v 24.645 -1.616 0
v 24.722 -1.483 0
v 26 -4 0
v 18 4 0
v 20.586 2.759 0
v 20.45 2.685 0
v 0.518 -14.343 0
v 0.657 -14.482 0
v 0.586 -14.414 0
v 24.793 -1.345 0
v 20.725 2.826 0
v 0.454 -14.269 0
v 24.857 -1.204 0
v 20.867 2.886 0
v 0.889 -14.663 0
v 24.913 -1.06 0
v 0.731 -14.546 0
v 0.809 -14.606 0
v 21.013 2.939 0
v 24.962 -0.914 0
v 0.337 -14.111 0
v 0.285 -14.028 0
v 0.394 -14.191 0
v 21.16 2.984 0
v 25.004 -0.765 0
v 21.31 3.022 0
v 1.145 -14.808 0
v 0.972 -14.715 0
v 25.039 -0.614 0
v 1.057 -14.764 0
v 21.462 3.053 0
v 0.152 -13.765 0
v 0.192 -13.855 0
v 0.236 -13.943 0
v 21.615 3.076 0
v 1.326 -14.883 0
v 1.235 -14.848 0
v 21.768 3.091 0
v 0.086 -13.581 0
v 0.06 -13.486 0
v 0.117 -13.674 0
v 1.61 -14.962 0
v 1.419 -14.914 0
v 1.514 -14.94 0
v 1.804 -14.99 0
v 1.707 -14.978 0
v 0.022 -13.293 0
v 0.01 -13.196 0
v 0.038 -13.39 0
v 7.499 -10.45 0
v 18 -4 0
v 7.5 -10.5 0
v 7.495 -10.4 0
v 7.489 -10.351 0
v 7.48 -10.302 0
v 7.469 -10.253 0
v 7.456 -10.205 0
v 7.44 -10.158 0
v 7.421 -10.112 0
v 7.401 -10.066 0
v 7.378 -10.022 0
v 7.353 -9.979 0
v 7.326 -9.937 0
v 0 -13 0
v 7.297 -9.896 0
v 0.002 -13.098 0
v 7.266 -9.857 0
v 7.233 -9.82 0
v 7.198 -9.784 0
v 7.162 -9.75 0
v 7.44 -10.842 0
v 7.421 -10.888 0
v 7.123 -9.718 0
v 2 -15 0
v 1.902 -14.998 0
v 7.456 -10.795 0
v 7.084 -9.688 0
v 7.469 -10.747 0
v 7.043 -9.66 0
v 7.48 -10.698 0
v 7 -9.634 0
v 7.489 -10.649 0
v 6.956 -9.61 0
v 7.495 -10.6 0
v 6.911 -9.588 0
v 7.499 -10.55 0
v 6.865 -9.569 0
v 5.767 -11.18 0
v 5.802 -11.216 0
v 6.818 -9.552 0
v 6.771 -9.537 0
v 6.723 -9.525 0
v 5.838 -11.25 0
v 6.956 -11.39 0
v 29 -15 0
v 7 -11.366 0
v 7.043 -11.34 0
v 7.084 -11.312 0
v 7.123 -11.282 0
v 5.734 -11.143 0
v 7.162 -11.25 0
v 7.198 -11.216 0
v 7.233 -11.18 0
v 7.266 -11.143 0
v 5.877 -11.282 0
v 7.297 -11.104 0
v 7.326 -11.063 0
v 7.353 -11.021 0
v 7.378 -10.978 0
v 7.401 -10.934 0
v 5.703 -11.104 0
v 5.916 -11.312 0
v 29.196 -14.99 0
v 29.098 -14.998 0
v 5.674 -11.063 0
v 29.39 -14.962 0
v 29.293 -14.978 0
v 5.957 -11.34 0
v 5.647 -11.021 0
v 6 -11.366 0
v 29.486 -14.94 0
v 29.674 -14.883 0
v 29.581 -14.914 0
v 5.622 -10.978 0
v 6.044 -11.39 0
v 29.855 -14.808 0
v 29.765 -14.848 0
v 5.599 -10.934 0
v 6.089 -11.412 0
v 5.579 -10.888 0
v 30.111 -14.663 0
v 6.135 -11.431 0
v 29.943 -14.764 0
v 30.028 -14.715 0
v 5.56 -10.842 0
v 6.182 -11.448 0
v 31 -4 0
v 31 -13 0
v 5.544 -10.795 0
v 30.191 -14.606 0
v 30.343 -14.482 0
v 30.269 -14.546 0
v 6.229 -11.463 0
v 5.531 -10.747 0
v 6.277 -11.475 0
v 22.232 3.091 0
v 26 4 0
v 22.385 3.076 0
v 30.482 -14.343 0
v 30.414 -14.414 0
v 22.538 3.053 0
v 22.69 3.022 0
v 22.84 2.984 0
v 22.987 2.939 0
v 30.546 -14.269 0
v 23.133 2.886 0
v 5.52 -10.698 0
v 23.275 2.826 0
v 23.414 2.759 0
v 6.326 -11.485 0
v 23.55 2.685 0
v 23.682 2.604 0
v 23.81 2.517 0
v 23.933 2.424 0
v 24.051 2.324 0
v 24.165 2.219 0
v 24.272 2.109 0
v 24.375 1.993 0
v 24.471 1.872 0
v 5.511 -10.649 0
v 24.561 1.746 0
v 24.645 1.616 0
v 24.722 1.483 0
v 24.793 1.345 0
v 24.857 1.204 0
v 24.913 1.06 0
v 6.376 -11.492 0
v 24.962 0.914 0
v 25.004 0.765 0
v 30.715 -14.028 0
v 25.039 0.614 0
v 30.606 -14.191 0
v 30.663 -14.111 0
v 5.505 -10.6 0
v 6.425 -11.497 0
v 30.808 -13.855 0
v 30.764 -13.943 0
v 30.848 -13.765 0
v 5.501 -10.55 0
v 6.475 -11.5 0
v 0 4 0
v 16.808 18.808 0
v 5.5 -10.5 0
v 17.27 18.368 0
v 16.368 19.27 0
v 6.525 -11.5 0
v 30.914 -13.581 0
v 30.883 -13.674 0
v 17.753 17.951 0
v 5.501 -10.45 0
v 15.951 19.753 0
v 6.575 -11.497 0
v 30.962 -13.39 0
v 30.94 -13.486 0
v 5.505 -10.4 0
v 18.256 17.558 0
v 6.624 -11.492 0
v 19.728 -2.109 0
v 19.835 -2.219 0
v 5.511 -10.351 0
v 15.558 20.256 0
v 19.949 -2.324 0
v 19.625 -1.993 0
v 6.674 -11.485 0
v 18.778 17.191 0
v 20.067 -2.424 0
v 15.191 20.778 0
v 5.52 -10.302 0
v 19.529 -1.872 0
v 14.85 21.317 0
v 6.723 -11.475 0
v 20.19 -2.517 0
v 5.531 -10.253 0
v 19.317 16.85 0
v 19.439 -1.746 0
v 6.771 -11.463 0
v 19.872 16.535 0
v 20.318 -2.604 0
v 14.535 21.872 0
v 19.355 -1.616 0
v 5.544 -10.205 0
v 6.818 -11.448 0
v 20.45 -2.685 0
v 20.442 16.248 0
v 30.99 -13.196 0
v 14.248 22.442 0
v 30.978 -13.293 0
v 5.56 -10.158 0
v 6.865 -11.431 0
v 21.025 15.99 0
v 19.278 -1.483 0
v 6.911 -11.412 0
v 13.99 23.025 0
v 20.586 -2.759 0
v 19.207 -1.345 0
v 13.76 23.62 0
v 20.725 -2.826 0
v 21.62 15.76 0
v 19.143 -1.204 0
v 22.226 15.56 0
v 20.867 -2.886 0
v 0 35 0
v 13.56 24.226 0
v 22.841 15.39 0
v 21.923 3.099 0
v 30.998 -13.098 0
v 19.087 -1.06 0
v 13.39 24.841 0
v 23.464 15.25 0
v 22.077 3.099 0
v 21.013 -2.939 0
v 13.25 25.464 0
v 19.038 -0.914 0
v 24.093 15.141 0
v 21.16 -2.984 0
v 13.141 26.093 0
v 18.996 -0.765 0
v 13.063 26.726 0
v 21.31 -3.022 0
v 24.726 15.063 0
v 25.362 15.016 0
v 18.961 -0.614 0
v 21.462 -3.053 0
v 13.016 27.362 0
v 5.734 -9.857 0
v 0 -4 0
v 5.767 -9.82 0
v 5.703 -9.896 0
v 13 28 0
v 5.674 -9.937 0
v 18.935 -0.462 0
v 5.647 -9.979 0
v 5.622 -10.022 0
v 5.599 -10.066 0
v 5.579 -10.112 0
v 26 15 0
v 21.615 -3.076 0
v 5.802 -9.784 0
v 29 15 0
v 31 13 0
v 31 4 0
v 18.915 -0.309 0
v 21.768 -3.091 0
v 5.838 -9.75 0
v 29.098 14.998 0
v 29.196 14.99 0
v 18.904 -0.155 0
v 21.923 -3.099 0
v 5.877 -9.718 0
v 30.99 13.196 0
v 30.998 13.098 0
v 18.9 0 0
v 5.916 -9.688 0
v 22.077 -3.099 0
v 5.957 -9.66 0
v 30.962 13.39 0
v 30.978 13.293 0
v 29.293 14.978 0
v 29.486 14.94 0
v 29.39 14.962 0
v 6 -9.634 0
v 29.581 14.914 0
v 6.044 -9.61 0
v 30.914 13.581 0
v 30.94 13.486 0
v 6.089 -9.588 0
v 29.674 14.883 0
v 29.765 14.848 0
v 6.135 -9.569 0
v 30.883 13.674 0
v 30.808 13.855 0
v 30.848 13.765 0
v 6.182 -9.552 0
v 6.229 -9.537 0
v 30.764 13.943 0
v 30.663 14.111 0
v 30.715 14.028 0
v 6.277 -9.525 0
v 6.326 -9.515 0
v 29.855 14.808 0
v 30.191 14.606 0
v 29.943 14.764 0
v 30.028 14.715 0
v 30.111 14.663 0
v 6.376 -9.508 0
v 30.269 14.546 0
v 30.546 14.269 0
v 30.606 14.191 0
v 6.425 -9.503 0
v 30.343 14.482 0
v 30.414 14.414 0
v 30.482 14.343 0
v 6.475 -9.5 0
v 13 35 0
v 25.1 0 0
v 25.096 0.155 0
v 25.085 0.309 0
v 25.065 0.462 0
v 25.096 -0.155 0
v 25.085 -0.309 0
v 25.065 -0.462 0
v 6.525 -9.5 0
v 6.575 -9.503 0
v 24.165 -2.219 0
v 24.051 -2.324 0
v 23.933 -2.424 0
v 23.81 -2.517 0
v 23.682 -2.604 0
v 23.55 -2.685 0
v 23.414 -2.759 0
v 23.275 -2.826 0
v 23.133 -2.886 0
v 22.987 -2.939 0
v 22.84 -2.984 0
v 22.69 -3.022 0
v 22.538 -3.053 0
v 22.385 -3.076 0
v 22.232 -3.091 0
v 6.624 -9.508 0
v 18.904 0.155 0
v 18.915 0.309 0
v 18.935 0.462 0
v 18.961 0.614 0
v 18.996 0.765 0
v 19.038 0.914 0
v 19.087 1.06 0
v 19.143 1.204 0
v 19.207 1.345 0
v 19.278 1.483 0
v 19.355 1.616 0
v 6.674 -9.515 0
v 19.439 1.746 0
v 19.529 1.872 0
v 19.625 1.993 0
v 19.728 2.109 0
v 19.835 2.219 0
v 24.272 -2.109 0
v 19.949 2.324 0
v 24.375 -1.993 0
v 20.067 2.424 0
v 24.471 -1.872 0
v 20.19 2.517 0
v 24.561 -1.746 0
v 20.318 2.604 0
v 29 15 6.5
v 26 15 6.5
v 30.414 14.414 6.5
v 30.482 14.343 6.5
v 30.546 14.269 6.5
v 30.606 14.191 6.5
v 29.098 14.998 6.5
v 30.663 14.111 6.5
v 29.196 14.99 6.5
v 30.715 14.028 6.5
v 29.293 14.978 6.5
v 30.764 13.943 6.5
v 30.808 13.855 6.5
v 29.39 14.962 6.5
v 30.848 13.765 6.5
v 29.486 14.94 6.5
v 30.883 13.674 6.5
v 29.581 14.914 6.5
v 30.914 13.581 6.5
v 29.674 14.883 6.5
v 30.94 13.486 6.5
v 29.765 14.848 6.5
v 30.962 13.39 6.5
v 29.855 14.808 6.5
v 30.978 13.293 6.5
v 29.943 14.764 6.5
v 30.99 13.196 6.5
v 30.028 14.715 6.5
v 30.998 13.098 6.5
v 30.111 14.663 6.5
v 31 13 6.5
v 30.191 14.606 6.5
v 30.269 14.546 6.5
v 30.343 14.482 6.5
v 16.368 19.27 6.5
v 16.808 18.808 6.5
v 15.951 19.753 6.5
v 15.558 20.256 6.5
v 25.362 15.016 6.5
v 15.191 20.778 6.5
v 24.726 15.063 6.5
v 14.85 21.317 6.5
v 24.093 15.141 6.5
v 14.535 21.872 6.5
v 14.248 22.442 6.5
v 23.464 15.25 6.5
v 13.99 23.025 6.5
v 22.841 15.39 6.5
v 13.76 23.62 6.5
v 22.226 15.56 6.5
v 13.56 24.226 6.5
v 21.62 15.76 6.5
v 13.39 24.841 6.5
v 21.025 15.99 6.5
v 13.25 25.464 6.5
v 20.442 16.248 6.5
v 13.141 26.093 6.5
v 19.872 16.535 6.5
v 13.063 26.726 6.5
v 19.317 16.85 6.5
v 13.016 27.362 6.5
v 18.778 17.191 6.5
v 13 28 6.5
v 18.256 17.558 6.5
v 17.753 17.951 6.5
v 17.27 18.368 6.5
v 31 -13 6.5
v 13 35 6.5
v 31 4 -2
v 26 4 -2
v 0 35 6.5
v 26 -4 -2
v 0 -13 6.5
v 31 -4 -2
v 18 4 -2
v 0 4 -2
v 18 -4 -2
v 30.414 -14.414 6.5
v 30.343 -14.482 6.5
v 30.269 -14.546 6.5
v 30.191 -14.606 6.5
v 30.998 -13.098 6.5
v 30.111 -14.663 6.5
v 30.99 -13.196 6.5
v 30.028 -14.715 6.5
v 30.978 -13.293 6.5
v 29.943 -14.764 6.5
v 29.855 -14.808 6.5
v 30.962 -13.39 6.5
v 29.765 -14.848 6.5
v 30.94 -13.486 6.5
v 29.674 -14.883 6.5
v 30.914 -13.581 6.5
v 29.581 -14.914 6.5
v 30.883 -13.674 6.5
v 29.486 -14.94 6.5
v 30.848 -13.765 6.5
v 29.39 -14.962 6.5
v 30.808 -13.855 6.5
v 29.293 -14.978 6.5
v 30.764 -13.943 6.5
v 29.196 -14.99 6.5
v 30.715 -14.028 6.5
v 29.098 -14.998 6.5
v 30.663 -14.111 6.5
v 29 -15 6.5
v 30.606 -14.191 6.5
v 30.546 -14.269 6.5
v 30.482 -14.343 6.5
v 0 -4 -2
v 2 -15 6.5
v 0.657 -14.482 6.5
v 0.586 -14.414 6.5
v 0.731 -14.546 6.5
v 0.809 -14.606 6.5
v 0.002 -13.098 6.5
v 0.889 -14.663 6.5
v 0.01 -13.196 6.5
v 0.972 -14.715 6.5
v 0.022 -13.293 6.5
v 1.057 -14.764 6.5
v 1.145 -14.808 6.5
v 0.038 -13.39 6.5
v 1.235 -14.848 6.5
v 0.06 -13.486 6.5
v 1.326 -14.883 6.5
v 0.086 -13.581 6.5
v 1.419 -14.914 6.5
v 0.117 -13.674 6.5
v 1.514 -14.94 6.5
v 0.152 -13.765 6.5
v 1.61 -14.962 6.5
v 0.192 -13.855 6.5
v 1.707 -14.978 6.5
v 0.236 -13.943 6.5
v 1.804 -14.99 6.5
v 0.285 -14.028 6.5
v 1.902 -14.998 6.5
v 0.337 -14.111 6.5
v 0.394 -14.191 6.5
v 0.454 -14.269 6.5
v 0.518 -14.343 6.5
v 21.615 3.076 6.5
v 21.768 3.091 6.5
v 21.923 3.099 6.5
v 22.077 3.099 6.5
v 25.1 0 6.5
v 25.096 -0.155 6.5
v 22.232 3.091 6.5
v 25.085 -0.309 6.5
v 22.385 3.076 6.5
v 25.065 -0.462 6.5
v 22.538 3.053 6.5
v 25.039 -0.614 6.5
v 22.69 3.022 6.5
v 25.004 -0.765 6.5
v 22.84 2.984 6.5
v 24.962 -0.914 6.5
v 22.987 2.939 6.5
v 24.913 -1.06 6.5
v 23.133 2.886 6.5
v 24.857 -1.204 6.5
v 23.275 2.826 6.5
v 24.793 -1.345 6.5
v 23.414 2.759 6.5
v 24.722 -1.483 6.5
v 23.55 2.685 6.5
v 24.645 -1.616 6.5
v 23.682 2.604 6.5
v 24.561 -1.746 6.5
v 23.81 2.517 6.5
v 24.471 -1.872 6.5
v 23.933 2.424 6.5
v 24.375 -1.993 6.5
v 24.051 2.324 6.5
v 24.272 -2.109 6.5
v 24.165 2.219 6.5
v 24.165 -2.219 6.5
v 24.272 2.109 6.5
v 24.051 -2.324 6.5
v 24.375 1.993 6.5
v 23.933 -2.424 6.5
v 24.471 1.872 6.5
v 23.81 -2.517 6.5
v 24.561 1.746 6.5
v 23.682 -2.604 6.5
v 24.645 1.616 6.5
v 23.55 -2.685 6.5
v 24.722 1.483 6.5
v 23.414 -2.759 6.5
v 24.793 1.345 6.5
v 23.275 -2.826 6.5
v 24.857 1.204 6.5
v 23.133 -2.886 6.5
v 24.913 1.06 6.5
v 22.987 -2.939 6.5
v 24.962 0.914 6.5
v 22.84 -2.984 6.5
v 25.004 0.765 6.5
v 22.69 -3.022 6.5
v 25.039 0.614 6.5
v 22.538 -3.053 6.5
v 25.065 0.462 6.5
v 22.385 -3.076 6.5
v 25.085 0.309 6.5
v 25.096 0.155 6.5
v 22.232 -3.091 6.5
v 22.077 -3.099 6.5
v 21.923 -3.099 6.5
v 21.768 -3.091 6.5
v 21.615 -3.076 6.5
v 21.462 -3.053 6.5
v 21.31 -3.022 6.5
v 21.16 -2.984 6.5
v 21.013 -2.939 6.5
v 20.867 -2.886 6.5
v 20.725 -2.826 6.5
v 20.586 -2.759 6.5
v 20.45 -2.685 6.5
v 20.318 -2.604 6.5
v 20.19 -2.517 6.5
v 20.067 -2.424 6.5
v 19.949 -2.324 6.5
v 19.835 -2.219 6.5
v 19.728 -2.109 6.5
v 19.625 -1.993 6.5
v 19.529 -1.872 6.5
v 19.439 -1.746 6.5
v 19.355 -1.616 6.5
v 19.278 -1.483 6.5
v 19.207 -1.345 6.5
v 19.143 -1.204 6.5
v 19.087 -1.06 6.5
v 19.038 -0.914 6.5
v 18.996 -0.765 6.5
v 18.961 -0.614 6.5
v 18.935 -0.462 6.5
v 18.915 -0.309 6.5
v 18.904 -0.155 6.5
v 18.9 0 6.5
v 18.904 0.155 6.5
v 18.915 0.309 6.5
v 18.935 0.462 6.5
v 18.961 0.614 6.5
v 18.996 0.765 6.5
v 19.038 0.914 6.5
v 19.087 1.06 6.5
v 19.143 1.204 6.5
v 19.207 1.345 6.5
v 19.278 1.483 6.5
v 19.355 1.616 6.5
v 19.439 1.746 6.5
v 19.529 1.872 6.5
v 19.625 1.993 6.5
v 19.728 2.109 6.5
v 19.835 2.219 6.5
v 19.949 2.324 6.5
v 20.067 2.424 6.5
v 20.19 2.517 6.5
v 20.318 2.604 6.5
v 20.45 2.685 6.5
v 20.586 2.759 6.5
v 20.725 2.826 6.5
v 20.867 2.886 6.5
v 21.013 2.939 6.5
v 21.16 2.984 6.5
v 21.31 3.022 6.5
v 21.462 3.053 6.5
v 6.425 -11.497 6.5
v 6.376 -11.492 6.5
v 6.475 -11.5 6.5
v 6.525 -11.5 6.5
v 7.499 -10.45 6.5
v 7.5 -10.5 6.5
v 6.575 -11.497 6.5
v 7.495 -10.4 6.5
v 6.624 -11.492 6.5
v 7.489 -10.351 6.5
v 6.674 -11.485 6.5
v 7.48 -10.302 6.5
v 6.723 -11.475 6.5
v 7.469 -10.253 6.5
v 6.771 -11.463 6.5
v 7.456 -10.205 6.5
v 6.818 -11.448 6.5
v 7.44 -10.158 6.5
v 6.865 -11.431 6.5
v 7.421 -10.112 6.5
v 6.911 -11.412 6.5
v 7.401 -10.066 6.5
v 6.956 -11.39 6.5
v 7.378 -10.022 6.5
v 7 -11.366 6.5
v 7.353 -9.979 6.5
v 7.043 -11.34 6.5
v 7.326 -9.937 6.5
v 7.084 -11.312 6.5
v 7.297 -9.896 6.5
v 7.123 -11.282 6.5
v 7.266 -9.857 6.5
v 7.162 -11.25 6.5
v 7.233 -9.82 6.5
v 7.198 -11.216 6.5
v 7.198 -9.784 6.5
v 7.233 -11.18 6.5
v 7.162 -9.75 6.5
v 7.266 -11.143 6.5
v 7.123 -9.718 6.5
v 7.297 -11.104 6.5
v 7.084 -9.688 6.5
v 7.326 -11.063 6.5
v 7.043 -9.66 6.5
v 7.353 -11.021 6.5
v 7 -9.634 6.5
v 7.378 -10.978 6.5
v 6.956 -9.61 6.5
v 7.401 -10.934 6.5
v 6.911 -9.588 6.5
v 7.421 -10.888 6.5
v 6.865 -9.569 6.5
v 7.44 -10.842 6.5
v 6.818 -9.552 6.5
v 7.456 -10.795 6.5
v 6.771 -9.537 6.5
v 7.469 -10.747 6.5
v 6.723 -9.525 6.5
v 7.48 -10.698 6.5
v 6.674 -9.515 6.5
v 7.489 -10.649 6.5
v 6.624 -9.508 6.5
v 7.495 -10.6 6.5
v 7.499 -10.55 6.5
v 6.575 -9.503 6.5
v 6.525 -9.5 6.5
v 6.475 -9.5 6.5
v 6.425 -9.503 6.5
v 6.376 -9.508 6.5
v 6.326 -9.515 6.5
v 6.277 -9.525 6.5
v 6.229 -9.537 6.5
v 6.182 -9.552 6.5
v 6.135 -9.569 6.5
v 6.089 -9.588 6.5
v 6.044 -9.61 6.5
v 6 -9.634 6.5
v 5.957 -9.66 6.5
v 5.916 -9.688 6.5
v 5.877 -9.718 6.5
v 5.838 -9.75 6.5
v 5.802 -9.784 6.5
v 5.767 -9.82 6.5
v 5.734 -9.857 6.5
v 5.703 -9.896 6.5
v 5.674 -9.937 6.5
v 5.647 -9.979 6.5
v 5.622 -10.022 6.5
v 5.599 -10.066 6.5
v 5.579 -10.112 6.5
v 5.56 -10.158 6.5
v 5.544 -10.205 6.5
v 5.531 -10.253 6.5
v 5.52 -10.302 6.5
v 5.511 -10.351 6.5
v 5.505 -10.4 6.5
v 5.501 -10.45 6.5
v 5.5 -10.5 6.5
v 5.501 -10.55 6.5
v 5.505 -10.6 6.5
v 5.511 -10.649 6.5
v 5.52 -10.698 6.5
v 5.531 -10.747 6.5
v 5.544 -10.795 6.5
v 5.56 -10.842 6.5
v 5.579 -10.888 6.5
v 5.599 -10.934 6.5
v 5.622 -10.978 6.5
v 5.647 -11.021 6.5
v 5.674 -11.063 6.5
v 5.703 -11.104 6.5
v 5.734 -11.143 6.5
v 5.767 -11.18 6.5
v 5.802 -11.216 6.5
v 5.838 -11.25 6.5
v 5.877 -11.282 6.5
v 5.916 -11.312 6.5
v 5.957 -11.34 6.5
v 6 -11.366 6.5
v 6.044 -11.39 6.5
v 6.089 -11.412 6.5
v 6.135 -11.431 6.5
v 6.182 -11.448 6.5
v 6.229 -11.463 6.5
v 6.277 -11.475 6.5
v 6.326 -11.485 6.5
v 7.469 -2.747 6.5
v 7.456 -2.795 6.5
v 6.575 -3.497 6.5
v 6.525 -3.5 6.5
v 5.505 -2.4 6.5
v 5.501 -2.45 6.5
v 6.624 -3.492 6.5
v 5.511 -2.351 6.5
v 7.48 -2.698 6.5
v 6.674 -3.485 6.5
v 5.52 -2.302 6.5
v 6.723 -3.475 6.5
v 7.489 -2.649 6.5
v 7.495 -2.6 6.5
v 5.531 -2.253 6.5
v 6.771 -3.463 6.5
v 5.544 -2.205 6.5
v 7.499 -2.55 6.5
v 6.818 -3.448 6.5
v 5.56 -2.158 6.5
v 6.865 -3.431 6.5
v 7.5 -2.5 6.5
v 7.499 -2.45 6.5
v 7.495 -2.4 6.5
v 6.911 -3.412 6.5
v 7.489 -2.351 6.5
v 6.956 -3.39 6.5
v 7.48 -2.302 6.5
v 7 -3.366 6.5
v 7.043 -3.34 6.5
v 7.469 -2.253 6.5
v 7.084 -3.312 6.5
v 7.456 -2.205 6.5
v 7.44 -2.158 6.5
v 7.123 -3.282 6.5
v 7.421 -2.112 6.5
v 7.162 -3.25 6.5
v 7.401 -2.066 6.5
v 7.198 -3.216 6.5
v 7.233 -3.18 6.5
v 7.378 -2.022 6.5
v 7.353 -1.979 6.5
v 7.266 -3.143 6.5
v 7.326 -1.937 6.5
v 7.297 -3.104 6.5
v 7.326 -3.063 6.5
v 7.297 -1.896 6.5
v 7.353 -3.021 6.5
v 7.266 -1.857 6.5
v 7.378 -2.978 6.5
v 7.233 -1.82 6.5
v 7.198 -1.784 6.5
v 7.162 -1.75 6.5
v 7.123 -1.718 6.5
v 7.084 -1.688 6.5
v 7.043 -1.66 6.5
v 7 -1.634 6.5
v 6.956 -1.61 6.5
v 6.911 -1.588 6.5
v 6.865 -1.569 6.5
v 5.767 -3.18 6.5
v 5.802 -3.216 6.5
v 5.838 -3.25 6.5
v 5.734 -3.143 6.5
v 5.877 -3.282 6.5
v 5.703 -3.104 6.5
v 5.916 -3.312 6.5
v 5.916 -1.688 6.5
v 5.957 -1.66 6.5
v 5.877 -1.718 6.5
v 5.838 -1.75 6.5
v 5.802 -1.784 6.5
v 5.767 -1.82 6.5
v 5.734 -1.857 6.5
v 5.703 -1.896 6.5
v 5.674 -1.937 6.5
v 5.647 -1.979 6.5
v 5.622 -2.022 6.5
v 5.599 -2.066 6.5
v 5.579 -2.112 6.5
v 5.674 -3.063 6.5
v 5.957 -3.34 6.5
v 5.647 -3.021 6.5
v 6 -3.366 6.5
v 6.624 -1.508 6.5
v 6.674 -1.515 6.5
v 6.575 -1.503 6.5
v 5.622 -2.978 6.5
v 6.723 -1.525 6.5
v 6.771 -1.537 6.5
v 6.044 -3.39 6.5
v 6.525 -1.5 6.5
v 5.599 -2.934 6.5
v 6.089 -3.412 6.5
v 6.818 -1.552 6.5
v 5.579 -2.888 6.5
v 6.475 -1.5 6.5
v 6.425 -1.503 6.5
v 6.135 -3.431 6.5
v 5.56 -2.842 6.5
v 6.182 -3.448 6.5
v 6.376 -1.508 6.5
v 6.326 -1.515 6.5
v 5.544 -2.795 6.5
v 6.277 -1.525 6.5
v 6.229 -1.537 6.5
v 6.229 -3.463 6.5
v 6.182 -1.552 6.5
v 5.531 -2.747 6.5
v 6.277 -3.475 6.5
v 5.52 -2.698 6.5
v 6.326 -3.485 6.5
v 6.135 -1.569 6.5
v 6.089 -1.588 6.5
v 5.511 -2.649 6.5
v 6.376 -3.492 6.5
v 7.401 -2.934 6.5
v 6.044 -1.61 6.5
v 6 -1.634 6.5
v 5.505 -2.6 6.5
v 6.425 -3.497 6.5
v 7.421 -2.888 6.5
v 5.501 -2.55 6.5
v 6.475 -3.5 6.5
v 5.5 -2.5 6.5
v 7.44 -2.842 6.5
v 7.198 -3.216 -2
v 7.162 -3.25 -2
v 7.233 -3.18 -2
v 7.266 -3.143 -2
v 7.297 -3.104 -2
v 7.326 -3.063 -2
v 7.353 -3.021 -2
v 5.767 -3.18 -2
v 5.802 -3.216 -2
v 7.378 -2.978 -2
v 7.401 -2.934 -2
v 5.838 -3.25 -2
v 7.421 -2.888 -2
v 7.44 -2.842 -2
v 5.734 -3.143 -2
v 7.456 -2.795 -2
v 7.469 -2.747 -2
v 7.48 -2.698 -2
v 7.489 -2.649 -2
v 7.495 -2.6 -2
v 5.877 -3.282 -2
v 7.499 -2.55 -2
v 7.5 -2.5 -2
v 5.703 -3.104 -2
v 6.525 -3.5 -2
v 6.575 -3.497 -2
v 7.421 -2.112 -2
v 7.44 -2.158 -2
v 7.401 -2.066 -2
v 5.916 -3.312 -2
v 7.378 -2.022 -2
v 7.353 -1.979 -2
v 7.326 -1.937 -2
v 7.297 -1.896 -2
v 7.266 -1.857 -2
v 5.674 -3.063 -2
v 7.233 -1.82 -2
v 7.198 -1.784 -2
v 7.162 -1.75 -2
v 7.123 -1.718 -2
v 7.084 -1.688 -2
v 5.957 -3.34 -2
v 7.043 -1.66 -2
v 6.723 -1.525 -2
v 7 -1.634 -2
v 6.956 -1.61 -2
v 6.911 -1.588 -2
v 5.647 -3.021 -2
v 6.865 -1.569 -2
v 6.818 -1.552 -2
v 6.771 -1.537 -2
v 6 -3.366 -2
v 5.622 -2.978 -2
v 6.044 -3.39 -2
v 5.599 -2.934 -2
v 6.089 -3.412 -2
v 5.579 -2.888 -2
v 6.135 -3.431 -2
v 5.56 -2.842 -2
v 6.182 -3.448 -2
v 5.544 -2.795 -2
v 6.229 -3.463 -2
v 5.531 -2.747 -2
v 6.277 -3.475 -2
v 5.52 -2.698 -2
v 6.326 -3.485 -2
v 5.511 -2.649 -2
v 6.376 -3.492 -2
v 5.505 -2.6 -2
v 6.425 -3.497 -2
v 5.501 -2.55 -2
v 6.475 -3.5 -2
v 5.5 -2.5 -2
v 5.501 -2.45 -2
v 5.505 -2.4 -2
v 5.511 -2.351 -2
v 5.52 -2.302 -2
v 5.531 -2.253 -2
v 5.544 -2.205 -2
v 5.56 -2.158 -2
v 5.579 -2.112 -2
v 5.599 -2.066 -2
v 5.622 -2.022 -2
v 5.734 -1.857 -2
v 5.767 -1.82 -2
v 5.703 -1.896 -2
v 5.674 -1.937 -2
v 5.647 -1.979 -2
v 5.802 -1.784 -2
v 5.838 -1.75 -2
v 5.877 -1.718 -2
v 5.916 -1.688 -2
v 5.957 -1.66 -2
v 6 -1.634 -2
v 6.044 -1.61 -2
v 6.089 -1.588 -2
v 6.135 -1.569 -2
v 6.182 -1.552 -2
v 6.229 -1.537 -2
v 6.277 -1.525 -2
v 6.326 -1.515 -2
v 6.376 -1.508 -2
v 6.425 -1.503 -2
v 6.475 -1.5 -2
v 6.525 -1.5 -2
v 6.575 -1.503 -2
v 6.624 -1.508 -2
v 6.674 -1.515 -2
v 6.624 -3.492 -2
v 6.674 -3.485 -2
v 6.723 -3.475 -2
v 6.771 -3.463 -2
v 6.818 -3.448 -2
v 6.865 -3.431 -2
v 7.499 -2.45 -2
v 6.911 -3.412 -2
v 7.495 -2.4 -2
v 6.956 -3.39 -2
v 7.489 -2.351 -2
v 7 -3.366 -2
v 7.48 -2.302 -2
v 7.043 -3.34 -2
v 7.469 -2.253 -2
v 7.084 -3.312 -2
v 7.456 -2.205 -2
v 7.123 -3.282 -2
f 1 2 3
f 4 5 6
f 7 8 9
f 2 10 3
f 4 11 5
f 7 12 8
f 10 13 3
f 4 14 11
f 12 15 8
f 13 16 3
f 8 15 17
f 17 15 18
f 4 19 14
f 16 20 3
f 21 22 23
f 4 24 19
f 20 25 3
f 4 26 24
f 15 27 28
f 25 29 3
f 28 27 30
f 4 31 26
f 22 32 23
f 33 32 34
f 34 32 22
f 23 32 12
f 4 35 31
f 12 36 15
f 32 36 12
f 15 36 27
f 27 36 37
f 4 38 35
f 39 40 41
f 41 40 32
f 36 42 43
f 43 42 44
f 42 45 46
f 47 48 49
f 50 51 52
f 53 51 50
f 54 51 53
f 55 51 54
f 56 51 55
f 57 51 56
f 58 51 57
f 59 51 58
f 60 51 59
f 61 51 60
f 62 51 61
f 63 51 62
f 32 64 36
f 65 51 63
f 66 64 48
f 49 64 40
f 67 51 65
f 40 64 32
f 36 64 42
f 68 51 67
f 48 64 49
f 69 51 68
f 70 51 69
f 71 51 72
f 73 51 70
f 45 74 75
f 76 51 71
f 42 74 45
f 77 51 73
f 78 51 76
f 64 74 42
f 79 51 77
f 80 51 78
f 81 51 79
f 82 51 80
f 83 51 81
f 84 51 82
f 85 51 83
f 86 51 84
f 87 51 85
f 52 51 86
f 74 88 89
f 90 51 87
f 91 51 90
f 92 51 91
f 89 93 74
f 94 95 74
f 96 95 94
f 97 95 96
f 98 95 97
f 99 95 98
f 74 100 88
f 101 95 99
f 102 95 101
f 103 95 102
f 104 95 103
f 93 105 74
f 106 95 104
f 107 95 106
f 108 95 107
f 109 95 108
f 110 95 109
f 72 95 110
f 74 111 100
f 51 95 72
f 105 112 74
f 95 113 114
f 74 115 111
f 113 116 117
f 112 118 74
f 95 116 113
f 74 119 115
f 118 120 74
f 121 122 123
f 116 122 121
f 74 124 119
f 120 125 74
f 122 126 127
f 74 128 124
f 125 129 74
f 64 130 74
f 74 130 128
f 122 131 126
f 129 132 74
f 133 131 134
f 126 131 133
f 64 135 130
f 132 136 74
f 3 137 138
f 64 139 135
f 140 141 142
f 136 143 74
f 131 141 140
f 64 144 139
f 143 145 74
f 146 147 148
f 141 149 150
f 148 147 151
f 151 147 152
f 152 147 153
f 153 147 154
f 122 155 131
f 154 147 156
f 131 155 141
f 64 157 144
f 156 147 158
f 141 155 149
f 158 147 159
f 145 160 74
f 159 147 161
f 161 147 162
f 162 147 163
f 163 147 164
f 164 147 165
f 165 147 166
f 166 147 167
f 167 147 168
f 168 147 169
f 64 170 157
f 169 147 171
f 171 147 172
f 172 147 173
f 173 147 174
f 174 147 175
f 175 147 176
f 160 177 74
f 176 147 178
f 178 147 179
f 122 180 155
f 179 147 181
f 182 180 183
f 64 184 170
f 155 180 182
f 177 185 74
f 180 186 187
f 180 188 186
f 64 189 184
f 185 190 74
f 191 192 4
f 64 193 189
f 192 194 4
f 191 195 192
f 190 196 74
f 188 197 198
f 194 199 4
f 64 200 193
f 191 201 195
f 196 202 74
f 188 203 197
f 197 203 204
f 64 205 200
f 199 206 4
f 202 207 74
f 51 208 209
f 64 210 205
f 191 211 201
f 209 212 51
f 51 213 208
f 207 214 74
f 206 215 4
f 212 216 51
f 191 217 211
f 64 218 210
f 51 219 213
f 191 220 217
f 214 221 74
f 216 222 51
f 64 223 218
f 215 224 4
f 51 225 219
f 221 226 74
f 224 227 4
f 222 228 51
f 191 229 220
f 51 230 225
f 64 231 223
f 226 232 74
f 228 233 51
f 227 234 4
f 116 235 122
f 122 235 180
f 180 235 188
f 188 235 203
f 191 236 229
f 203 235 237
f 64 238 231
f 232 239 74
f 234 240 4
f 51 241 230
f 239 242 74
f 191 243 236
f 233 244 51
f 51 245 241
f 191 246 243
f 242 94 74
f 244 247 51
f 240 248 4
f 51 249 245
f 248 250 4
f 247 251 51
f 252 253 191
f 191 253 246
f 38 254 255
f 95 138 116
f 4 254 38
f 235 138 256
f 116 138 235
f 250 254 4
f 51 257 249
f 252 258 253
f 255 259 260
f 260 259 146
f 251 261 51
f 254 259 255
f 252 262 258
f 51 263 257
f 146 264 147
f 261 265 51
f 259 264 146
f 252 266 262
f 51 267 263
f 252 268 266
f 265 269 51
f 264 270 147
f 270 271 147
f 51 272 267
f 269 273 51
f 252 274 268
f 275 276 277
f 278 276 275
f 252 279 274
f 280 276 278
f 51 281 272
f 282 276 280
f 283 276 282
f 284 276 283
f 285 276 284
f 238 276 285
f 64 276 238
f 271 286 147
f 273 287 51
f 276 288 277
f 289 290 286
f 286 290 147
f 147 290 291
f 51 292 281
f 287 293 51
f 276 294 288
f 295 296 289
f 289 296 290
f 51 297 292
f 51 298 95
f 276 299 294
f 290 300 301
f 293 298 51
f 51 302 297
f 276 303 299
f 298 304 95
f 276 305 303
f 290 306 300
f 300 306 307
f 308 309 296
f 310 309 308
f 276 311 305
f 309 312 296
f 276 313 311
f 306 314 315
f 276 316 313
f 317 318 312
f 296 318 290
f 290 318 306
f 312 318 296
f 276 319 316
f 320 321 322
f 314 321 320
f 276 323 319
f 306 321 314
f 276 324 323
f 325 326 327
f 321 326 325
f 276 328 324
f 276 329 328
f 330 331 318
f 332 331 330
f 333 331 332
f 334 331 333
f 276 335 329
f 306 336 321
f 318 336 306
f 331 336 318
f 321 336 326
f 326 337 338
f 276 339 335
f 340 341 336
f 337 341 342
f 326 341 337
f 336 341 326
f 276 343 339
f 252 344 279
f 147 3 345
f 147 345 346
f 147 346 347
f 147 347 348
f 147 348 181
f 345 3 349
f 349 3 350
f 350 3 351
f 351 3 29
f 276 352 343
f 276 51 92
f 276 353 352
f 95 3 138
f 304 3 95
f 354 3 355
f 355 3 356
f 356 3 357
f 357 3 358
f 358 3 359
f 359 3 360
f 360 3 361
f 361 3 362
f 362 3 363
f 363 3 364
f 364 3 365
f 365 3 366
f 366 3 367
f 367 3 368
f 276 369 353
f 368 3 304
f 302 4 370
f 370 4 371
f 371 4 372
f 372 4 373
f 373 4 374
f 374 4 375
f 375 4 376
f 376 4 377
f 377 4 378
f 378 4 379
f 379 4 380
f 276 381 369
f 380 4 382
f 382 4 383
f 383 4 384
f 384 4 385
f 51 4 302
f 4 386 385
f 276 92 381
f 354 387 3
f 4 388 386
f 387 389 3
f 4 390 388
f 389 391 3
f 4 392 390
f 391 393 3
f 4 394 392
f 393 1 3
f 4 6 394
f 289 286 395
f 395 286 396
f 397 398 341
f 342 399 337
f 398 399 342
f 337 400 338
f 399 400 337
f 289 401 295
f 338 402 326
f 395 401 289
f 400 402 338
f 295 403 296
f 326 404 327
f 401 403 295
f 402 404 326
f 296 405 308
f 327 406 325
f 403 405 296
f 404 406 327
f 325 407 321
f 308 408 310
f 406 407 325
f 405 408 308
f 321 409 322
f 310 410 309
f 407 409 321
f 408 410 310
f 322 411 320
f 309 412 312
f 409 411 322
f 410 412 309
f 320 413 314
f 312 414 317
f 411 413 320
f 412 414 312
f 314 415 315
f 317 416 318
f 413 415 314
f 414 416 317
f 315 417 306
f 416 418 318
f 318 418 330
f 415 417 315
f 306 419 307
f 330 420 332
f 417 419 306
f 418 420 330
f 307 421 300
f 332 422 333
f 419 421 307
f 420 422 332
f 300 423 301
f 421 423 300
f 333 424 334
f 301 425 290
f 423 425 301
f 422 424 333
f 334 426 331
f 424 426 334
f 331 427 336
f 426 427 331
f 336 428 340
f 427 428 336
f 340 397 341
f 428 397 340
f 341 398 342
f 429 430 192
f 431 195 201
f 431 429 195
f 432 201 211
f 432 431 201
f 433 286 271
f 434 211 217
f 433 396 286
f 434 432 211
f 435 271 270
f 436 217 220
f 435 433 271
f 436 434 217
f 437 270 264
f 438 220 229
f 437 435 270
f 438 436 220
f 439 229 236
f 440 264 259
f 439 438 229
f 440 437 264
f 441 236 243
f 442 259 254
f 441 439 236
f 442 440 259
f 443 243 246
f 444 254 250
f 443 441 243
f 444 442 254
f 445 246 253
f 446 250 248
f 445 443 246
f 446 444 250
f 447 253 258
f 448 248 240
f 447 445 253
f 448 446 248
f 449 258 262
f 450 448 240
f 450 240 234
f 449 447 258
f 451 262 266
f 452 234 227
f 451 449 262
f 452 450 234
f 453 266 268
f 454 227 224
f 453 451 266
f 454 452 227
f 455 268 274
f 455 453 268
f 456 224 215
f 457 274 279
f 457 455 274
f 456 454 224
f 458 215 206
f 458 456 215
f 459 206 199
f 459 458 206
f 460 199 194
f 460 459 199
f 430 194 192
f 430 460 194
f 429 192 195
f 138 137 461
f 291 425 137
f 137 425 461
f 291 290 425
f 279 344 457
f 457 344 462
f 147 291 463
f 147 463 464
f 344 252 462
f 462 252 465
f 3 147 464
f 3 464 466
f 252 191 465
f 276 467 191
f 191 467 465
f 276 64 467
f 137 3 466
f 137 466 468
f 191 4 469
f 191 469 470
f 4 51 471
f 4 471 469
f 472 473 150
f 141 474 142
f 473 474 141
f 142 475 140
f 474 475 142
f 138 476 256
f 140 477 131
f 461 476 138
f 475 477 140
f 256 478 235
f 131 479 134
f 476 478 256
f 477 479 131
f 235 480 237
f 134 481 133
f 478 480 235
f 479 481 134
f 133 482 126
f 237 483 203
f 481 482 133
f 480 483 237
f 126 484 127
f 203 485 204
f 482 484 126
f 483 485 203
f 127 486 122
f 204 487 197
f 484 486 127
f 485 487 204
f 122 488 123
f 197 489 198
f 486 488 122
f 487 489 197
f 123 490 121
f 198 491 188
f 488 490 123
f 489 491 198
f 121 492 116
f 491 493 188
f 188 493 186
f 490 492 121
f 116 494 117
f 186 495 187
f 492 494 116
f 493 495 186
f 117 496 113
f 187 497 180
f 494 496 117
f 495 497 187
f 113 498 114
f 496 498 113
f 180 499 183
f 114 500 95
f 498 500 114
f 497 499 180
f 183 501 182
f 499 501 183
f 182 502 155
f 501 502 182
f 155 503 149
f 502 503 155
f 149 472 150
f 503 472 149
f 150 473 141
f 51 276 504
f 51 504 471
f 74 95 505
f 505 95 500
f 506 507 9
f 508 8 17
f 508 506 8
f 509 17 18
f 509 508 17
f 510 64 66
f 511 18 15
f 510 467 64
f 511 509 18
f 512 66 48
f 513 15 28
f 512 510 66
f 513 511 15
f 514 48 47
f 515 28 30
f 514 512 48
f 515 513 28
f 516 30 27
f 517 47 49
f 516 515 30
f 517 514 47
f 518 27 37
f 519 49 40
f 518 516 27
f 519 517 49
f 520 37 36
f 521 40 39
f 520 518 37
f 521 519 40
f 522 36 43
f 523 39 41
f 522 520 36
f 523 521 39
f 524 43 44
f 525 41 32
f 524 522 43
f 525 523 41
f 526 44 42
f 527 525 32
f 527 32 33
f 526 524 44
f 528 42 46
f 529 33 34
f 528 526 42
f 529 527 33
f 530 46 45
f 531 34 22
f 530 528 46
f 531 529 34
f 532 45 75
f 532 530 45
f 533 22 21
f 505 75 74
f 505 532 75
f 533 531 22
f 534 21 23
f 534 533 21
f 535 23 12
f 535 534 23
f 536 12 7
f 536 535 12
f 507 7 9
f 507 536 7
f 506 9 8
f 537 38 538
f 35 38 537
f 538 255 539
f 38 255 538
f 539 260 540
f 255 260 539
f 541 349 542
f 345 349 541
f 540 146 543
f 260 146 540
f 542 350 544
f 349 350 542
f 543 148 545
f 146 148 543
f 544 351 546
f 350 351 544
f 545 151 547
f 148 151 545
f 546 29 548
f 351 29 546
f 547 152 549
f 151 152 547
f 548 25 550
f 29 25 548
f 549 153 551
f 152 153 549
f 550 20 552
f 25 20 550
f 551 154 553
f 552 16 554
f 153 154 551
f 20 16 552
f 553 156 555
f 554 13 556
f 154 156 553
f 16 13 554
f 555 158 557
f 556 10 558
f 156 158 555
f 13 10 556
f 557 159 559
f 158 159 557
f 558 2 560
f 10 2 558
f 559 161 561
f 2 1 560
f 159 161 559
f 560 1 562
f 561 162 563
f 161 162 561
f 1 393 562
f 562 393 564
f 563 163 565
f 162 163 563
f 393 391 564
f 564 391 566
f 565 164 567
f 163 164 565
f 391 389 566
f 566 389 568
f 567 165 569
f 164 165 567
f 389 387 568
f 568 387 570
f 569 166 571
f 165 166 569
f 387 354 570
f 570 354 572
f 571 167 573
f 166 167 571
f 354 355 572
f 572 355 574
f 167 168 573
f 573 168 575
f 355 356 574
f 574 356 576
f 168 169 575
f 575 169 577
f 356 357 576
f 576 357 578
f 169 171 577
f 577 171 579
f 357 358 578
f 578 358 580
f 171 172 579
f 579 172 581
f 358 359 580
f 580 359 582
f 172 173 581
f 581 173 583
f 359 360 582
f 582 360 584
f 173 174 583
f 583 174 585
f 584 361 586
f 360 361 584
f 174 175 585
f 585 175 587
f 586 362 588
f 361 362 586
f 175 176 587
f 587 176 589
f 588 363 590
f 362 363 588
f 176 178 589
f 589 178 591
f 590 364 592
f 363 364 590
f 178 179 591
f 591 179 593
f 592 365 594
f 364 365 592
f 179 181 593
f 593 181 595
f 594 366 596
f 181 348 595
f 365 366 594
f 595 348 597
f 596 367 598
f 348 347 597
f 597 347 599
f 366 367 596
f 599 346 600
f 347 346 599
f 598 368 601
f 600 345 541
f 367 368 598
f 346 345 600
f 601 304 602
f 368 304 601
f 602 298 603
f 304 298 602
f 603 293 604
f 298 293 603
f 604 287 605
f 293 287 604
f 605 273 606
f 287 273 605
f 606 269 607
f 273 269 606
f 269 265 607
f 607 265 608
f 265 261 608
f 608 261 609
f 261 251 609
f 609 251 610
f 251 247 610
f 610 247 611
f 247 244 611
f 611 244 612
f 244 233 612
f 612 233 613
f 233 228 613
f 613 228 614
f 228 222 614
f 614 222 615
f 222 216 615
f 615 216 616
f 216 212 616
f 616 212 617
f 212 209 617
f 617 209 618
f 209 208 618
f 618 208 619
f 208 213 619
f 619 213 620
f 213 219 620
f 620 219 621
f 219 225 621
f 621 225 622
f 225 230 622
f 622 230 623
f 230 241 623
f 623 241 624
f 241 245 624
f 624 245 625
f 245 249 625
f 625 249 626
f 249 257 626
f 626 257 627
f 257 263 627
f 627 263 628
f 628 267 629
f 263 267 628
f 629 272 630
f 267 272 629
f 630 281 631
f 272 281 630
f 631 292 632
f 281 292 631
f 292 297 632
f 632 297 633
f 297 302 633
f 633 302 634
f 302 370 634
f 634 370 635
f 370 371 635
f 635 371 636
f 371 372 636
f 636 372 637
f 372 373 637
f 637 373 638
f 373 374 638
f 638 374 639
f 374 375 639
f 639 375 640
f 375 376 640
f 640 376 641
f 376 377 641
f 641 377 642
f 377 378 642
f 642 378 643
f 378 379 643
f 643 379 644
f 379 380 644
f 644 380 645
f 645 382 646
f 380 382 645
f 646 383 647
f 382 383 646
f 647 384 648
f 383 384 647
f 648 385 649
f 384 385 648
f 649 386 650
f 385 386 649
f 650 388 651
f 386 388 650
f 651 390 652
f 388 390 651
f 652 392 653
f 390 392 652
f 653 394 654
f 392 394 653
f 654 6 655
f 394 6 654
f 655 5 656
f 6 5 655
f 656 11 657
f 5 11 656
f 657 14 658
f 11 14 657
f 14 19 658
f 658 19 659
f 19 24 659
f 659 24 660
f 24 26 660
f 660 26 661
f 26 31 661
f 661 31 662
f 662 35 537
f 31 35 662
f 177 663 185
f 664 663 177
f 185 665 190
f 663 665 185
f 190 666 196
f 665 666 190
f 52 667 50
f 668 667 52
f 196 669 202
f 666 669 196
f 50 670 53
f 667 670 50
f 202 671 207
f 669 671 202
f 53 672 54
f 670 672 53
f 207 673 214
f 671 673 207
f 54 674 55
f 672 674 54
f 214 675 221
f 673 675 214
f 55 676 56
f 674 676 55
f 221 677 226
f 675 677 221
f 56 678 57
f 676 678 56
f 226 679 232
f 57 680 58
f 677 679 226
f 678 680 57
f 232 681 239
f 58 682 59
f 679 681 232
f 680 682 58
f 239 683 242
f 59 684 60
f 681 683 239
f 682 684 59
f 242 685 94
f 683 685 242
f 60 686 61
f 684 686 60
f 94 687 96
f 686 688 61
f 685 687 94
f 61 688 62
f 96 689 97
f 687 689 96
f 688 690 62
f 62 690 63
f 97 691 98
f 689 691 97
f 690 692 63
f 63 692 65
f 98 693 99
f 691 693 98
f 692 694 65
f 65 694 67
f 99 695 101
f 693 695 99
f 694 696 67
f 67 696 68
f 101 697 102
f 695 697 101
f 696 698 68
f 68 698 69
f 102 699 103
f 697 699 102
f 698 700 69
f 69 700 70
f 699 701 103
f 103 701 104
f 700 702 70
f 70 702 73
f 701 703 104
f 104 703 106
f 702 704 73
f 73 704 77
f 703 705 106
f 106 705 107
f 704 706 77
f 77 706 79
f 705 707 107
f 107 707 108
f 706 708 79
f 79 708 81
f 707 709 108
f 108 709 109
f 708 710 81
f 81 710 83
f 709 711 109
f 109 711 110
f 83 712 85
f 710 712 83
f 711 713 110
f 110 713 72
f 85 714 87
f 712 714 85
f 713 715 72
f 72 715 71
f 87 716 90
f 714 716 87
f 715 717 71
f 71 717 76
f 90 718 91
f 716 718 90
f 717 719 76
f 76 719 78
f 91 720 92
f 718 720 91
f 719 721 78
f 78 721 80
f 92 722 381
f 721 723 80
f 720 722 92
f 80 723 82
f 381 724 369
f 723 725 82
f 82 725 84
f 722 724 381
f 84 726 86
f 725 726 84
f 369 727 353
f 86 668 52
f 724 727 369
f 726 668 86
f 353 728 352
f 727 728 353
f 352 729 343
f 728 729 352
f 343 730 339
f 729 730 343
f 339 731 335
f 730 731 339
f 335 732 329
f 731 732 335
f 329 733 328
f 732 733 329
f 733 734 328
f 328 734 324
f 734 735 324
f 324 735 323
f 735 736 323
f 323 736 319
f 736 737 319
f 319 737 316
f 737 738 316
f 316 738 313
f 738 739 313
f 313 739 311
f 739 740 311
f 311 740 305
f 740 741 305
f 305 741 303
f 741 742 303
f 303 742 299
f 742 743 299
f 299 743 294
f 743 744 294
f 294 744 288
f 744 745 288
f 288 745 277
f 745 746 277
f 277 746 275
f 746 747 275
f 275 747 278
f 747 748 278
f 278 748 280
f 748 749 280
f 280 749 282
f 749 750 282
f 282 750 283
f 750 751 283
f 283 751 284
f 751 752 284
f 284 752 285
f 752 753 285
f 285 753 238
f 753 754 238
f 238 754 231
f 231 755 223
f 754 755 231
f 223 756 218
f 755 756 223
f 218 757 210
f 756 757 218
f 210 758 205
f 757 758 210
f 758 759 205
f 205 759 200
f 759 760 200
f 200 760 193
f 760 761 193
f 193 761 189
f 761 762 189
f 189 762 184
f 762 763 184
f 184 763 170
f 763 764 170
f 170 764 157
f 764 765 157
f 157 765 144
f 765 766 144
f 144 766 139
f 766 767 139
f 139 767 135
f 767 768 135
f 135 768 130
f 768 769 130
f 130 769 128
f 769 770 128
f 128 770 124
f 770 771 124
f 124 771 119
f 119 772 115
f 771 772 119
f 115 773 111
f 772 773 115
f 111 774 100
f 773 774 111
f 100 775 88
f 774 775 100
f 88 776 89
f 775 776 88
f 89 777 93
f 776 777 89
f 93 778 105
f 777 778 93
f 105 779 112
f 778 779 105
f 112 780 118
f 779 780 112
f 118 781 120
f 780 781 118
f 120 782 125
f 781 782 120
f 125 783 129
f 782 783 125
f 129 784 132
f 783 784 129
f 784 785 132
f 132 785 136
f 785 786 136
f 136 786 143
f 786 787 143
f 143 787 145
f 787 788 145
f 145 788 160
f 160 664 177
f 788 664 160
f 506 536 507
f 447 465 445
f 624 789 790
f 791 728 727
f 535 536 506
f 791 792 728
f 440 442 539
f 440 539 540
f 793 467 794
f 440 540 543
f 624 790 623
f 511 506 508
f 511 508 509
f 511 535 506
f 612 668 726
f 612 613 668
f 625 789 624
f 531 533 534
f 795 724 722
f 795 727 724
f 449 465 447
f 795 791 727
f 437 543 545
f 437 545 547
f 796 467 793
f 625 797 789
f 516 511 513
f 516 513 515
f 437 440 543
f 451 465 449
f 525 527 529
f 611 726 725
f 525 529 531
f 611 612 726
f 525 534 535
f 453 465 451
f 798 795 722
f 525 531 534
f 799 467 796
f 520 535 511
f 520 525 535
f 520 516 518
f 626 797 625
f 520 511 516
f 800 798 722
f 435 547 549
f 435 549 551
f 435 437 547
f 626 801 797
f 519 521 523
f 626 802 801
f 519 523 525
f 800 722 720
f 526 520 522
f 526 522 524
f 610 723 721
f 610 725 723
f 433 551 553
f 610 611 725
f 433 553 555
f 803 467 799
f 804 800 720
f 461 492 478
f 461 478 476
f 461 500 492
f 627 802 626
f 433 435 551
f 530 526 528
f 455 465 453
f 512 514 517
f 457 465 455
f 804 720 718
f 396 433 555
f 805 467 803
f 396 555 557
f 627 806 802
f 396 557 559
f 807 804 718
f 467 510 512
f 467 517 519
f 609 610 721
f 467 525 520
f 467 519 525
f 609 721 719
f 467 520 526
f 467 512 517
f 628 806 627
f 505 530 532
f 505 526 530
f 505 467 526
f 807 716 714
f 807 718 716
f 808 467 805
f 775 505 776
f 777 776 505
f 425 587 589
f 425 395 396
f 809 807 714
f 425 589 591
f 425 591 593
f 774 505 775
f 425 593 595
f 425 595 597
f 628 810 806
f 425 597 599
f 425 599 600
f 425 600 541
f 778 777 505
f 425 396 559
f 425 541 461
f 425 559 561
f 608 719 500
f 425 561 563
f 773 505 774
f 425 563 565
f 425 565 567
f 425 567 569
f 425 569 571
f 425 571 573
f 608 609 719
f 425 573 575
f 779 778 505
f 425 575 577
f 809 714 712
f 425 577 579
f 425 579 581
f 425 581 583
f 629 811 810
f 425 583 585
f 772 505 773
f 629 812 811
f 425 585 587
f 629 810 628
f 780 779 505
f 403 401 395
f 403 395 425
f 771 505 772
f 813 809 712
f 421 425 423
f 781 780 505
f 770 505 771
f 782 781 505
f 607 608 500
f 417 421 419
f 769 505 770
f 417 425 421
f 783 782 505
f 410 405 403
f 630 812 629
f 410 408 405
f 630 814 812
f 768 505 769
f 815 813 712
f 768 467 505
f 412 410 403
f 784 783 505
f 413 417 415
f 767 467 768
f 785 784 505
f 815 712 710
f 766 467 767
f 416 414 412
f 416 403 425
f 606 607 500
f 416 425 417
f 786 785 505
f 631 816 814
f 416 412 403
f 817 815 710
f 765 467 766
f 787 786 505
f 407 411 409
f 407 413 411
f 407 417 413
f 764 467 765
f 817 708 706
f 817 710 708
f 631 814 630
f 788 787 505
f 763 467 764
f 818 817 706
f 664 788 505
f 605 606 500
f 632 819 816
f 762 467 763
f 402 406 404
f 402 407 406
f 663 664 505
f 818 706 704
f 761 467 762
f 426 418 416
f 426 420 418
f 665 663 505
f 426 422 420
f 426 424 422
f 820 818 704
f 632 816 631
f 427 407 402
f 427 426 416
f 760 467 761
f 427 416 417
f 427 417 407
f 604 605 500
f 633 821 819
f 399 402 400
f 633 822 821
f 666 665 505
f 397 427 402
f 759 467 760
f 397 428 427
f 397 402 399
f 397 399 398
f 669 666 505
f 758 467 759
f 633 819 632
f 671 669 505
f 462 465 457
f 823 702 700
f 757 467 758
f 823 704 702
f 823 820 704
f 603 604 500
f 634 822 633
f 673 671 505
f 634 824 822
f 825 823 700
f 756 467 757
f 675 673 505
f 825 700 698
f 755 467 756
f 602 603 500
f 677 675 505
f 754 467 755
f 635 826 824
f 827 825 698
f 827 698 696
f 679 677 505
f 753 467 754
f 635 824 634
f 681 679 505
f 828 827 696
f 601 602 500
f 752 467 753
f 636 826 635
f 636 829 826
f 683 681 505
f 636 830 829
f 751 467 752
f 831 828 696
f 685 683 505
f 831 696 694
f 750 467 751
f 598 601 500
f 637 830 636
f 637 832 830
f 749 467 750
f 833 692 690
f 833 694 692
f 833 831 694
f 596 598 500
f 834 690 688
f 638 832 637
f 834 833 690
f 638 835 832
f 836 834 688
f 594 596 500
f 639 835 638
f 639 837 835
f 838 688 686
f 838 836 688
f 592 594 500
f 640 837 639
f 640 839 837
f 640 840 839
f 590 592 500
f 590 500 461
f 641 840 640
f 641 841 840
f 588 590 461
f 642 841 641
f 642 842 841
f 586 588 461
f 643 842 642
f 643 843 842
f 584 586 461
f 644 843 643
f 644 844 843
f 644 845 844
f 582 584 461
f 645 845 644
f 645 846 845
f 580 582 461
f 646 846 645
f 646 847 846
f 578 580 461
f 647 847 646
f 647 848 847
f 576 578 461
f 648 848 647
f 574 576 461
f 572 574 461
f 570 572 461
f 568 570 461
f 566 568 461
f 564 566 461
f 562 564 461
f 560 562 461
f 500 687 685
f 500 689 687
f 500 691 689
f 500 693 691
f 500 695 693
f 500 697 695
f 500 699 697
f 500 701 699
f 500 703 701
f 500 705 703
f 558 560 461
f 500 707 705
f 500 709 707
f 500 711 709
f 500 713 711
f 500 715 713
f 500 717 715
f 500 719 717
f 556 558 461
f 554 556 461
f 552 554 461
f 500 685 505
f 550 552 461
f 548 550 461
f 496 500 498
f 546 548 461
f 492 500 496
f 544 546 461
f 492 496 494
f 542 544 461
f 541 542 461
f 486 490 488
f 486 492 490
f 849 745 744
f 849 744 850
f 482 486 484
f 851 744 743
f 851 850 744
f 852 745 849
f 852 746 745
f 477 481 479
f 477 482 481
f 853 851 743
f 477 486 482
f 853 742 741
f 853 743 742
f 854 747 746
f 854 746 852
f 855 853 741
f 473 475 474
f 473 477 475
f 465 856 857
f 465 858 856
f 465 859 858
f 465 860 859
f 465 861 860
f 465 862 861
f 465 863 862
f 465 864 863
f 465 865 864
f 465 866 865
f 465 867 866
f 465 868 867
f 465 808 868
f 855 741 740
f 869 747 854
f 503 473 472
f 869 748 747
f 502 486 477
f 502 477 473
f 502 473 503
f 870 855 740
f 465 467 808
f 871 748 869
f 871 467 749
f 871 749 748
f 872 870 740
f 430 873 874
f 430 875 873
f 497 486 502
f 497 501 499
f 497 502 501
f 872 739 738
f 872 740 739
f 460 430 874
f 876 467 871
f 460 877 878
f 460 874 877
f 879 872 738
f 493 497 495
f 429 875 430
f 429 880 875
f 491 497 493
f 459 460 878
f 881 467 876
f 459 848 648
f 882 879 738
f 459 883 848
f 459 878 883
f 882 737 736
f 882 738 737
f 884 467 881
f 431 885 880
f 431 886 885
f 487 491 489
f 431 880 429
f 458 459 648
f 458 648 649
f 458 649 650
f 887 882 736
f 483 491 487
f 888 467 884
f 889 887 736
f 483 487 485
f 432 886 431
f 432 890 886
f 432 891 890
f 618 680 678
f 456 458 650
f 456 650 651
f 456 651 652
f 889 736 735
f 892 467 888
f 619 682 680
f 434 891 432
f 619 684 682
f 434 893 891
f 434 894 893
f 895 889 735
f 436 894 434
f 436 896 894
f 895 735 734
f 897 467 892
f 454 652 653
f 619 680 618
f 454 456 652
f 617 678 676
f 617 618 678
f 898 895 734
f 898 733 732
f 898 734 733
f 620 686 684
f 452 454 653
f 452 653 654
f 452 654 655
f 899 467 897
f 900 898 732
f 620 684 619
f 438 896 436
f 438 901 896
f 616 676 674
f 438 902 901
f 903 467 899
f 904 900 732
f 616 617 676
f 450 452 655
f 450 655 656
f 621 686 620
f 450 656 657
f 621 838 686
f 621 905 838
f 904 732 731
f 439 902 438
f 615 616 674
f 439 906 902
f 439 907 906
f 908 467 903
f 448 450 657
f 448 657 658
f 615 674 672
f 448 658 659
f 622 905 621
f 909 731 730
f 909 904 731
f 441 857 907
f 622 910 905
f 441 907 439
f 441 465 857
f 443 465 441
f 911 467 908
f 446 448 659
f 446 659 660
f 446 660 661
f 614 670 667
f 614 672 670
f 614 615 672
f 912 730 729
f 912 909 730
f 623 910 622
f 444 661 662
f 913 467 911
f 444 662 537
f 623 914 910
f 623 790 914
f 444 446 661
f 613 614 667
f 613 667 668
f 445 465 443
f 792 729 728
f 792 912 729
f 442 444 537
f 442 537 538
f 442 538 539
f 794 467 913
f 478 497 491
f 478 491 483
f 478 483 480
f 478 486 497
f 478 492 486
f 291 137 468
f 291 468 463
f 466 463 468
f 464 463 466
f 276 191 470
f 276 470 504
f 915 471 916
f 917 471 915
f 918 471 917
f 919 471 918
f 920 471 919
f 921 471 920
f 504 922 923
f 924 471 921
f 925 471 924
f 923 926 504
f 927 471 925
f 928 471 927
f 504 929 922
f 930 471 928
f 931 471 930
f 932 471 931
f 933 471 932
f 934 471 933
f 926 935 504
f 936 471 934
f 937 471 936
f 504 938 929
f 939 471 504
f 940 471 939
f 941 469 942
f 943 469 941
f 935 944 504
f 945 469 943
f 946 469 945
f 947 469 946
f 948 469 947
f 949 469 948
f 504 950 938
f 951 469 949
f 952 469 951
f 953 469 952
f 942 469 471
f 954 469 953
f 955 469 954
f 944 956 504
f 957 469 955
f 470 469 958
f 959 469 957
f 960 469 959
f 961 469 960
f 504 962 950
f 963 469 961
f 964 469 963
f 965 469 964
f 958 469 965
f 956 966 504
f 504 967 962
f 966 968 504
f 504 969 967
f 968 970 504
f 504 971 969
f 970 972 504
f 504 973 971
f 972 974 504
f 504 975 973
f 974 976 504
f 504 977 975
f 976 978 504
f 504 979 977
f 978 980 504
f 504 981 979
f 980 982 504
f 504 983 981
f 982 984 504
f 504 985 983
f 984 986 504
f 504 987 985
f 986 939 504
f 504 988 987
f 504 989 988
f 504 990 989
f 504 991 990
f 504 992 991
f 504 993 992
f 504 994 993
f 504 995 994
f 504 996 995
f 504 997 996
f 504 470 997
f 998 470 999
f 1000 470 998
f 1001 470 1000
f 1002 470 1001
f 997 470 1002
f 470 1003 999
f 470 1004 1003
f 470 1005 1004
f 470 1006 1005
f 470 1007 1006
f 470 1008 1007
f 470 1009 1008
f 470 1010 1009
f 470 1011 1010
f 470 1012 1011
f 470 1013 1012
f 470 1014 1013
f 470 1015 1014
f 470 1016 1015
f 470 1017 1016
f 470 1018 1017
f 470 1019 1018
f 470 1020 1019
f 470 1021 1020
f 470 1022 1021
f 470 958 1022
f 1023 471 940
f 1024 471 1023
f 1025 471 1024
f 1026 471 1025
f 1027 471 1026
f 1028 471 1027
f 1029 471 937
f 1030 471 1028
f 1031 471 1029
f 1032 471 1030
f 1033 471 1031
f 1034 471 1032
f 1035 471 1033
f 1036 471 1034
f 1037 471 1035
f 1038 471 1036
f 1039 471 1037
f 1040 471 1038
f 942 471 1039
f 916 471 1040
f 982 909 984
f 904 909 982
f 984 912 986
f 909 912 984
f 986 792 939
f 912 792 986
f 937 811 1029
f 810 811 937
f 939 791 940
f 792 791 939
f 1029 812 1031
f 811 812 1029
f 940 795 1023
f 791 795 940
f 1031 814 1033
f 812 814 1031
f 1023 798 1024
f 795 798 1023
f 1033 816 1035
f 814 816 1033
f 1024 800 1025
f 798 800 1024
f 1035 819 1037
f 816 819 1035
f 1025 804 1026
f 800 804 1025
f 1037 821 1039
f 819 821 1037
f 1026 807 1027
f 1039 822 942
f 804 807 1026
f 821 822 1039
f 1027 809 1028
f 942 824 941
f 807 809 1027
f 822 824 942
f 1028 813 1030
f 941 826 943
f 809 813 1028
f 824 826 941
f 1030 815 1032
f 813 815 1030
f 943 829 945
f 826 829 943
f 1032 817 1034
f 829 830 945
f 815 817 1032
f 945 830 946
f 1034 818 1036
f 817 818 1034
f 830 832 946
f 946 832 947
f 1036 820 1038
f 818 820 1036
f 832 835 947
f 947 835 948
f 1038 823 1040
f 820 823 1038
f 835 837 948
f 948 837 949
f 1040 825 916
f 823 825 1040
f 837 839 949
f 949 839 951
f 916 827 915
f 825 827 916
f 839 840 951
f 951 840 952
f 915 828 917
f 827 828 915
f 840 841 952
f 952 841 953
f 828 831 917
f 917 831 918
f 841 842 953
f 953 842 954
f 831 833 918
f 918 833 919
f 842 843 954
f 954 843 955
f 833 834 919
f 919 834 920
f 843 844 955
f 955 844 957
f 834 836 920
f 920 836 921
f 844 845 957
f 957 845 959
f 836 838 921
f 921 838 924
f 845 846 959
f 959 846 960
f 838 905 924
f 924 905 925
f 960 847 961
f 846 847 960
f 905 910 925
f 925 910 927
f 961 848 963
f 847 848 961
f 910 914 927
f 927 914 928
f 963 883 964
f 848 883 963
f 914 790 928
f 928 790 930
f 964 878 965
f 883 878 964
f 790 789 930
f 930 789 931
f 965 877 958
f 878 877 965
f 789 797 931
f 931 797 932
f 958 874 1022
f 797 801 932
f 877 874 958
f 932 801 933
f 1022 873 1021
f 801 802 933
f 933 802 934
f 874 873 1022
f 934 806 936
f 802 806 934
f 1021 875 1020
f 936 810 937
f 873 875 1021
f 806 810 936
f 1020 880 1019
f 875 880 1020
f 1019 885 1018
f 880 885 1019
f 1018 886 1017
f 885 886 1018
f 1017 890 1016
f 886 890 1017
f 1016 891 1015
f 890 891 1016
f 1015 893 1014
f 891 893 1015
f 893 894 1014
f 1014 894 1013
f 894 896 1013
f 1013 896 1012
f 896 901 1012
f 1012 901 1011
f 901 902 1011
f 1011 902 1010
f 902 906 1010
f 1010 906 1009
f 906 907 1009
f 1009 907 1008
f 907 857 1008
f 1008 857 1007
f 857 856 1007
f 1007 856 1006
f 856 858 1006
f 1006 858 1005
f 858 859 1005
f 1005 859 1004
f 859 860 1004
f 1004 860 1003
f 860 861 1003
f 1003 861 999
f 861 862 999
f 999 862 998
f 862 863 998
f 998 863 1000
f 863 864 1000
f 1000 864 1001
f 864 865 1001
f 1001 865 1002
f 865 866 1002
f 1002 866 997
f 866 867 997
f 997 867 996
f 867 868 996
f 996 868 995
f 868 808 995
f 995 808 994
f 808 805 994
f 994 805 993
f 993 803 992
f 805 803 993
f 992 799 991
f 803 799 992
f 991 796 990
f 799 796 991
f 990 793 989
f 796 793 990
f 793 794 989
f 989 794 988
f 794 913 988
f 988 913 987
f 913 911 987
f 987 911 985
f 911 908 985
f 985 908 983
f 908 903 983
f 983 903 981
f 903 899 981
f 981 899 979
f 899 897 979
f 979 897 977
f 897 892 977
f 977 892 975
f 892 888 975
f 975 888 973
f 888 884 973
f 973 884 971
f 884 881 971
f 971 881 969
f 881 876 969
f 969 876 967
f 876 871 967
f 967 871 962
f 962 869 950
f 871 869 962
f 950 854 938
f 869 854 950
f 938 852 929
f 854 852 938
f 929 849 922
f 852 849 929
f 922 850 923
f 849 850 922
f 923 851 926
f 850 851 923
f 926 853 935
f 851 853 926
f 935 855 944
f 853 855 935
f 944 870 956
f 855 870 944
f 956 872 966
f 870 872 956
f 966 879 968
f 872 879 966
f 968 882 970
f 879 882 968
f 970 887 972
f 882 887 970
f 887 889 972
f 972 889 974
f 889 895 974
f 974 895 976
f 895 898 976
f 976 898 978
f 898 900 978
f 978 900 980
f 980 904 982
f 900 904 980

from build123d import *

# Parameters (mm, degrees)
PAD_DEPTH       = 6.5
SKETCH001_W     = 18
SKETCH001_H     = 8
SKETCH001_W_2   = 5
PAD001_DEPTH    = 2
SKETCH002_R     = 3.1
POCKET_DEPTH    = 6.501
SKETCH003_R     = 1
POCKET001_DEPTH = 8.501
FILLET_R        = 13
FILLET001_R     = 2


with BuildPart() as part:
    # Sketch → Pad (new body)
    with BuildSketch(Plane.XY):
        Polygon((0, -15), (31, -15), (31, 15), (13, 15), (13, 35), (0, 35), align=None)
    extrude(amount=PAD_DEPTH)

    # Sketch001 (on Face7 of Pad) → Pad001 (join)
    with BuildSketch(Plane(origin=(0, 0, 0), x_dir=(1, 0, 0), z_dir=(0, 0, -1))):
        with Locations((9, 0)):
            Rectangle(SKETCH001_W, SKETCH001_H)
        with Locations((28.5, 0)):
            Rectangle(SKETCH001_W_2, SKETCH001_H)
    extrude(amount=PAD001_DEPTH)

    # Sketch002 (on Face4 of Pad001) → Pocket (cut, through all)
    with BuildSketch(Plane(origin=(0, 0, 0), x_dir=(1, 0, 0), z_dir=(0, 0, -1))):
        with Locations((22, 0)):
            Circle(SKETCH002_R)
    extrude(amount=-POCKET_DEPTH, mode=Mode.SUBTRACT)

    # Sketch003 (on Face5 of Pocket) → Pocket001 (cut, through all)
    with BuildSketch(Plane.XY.offset(6.5)):
        with Locations((6.5, -10.5)):
            Circle(SKETCH003_R)
        with Locations((6.5, -2.5)):
            Circle(SKETCH003_R)
    extrude(amount=-POCKET001_DEPTH, mode=Mode.SUBTRACT)

    # Fillet
    fillet_edges = [part.edges().sort_by_distance(p)[0] for p in [
        (13, 15, 3.25),
    ]]
    fillet(fillet_edges, radius=FILLET_R)

    # Fillet001
    fillet001_edges = [part.edges().sort_by_distance(p)[0] for p in [
        (31, 15, 3.25),
        (31, -15, 3.25),
        (0, -15, 3.25),
    ]]
    fillet(fillet001_edges, radius=FILLET001_R)


solid = part.part
